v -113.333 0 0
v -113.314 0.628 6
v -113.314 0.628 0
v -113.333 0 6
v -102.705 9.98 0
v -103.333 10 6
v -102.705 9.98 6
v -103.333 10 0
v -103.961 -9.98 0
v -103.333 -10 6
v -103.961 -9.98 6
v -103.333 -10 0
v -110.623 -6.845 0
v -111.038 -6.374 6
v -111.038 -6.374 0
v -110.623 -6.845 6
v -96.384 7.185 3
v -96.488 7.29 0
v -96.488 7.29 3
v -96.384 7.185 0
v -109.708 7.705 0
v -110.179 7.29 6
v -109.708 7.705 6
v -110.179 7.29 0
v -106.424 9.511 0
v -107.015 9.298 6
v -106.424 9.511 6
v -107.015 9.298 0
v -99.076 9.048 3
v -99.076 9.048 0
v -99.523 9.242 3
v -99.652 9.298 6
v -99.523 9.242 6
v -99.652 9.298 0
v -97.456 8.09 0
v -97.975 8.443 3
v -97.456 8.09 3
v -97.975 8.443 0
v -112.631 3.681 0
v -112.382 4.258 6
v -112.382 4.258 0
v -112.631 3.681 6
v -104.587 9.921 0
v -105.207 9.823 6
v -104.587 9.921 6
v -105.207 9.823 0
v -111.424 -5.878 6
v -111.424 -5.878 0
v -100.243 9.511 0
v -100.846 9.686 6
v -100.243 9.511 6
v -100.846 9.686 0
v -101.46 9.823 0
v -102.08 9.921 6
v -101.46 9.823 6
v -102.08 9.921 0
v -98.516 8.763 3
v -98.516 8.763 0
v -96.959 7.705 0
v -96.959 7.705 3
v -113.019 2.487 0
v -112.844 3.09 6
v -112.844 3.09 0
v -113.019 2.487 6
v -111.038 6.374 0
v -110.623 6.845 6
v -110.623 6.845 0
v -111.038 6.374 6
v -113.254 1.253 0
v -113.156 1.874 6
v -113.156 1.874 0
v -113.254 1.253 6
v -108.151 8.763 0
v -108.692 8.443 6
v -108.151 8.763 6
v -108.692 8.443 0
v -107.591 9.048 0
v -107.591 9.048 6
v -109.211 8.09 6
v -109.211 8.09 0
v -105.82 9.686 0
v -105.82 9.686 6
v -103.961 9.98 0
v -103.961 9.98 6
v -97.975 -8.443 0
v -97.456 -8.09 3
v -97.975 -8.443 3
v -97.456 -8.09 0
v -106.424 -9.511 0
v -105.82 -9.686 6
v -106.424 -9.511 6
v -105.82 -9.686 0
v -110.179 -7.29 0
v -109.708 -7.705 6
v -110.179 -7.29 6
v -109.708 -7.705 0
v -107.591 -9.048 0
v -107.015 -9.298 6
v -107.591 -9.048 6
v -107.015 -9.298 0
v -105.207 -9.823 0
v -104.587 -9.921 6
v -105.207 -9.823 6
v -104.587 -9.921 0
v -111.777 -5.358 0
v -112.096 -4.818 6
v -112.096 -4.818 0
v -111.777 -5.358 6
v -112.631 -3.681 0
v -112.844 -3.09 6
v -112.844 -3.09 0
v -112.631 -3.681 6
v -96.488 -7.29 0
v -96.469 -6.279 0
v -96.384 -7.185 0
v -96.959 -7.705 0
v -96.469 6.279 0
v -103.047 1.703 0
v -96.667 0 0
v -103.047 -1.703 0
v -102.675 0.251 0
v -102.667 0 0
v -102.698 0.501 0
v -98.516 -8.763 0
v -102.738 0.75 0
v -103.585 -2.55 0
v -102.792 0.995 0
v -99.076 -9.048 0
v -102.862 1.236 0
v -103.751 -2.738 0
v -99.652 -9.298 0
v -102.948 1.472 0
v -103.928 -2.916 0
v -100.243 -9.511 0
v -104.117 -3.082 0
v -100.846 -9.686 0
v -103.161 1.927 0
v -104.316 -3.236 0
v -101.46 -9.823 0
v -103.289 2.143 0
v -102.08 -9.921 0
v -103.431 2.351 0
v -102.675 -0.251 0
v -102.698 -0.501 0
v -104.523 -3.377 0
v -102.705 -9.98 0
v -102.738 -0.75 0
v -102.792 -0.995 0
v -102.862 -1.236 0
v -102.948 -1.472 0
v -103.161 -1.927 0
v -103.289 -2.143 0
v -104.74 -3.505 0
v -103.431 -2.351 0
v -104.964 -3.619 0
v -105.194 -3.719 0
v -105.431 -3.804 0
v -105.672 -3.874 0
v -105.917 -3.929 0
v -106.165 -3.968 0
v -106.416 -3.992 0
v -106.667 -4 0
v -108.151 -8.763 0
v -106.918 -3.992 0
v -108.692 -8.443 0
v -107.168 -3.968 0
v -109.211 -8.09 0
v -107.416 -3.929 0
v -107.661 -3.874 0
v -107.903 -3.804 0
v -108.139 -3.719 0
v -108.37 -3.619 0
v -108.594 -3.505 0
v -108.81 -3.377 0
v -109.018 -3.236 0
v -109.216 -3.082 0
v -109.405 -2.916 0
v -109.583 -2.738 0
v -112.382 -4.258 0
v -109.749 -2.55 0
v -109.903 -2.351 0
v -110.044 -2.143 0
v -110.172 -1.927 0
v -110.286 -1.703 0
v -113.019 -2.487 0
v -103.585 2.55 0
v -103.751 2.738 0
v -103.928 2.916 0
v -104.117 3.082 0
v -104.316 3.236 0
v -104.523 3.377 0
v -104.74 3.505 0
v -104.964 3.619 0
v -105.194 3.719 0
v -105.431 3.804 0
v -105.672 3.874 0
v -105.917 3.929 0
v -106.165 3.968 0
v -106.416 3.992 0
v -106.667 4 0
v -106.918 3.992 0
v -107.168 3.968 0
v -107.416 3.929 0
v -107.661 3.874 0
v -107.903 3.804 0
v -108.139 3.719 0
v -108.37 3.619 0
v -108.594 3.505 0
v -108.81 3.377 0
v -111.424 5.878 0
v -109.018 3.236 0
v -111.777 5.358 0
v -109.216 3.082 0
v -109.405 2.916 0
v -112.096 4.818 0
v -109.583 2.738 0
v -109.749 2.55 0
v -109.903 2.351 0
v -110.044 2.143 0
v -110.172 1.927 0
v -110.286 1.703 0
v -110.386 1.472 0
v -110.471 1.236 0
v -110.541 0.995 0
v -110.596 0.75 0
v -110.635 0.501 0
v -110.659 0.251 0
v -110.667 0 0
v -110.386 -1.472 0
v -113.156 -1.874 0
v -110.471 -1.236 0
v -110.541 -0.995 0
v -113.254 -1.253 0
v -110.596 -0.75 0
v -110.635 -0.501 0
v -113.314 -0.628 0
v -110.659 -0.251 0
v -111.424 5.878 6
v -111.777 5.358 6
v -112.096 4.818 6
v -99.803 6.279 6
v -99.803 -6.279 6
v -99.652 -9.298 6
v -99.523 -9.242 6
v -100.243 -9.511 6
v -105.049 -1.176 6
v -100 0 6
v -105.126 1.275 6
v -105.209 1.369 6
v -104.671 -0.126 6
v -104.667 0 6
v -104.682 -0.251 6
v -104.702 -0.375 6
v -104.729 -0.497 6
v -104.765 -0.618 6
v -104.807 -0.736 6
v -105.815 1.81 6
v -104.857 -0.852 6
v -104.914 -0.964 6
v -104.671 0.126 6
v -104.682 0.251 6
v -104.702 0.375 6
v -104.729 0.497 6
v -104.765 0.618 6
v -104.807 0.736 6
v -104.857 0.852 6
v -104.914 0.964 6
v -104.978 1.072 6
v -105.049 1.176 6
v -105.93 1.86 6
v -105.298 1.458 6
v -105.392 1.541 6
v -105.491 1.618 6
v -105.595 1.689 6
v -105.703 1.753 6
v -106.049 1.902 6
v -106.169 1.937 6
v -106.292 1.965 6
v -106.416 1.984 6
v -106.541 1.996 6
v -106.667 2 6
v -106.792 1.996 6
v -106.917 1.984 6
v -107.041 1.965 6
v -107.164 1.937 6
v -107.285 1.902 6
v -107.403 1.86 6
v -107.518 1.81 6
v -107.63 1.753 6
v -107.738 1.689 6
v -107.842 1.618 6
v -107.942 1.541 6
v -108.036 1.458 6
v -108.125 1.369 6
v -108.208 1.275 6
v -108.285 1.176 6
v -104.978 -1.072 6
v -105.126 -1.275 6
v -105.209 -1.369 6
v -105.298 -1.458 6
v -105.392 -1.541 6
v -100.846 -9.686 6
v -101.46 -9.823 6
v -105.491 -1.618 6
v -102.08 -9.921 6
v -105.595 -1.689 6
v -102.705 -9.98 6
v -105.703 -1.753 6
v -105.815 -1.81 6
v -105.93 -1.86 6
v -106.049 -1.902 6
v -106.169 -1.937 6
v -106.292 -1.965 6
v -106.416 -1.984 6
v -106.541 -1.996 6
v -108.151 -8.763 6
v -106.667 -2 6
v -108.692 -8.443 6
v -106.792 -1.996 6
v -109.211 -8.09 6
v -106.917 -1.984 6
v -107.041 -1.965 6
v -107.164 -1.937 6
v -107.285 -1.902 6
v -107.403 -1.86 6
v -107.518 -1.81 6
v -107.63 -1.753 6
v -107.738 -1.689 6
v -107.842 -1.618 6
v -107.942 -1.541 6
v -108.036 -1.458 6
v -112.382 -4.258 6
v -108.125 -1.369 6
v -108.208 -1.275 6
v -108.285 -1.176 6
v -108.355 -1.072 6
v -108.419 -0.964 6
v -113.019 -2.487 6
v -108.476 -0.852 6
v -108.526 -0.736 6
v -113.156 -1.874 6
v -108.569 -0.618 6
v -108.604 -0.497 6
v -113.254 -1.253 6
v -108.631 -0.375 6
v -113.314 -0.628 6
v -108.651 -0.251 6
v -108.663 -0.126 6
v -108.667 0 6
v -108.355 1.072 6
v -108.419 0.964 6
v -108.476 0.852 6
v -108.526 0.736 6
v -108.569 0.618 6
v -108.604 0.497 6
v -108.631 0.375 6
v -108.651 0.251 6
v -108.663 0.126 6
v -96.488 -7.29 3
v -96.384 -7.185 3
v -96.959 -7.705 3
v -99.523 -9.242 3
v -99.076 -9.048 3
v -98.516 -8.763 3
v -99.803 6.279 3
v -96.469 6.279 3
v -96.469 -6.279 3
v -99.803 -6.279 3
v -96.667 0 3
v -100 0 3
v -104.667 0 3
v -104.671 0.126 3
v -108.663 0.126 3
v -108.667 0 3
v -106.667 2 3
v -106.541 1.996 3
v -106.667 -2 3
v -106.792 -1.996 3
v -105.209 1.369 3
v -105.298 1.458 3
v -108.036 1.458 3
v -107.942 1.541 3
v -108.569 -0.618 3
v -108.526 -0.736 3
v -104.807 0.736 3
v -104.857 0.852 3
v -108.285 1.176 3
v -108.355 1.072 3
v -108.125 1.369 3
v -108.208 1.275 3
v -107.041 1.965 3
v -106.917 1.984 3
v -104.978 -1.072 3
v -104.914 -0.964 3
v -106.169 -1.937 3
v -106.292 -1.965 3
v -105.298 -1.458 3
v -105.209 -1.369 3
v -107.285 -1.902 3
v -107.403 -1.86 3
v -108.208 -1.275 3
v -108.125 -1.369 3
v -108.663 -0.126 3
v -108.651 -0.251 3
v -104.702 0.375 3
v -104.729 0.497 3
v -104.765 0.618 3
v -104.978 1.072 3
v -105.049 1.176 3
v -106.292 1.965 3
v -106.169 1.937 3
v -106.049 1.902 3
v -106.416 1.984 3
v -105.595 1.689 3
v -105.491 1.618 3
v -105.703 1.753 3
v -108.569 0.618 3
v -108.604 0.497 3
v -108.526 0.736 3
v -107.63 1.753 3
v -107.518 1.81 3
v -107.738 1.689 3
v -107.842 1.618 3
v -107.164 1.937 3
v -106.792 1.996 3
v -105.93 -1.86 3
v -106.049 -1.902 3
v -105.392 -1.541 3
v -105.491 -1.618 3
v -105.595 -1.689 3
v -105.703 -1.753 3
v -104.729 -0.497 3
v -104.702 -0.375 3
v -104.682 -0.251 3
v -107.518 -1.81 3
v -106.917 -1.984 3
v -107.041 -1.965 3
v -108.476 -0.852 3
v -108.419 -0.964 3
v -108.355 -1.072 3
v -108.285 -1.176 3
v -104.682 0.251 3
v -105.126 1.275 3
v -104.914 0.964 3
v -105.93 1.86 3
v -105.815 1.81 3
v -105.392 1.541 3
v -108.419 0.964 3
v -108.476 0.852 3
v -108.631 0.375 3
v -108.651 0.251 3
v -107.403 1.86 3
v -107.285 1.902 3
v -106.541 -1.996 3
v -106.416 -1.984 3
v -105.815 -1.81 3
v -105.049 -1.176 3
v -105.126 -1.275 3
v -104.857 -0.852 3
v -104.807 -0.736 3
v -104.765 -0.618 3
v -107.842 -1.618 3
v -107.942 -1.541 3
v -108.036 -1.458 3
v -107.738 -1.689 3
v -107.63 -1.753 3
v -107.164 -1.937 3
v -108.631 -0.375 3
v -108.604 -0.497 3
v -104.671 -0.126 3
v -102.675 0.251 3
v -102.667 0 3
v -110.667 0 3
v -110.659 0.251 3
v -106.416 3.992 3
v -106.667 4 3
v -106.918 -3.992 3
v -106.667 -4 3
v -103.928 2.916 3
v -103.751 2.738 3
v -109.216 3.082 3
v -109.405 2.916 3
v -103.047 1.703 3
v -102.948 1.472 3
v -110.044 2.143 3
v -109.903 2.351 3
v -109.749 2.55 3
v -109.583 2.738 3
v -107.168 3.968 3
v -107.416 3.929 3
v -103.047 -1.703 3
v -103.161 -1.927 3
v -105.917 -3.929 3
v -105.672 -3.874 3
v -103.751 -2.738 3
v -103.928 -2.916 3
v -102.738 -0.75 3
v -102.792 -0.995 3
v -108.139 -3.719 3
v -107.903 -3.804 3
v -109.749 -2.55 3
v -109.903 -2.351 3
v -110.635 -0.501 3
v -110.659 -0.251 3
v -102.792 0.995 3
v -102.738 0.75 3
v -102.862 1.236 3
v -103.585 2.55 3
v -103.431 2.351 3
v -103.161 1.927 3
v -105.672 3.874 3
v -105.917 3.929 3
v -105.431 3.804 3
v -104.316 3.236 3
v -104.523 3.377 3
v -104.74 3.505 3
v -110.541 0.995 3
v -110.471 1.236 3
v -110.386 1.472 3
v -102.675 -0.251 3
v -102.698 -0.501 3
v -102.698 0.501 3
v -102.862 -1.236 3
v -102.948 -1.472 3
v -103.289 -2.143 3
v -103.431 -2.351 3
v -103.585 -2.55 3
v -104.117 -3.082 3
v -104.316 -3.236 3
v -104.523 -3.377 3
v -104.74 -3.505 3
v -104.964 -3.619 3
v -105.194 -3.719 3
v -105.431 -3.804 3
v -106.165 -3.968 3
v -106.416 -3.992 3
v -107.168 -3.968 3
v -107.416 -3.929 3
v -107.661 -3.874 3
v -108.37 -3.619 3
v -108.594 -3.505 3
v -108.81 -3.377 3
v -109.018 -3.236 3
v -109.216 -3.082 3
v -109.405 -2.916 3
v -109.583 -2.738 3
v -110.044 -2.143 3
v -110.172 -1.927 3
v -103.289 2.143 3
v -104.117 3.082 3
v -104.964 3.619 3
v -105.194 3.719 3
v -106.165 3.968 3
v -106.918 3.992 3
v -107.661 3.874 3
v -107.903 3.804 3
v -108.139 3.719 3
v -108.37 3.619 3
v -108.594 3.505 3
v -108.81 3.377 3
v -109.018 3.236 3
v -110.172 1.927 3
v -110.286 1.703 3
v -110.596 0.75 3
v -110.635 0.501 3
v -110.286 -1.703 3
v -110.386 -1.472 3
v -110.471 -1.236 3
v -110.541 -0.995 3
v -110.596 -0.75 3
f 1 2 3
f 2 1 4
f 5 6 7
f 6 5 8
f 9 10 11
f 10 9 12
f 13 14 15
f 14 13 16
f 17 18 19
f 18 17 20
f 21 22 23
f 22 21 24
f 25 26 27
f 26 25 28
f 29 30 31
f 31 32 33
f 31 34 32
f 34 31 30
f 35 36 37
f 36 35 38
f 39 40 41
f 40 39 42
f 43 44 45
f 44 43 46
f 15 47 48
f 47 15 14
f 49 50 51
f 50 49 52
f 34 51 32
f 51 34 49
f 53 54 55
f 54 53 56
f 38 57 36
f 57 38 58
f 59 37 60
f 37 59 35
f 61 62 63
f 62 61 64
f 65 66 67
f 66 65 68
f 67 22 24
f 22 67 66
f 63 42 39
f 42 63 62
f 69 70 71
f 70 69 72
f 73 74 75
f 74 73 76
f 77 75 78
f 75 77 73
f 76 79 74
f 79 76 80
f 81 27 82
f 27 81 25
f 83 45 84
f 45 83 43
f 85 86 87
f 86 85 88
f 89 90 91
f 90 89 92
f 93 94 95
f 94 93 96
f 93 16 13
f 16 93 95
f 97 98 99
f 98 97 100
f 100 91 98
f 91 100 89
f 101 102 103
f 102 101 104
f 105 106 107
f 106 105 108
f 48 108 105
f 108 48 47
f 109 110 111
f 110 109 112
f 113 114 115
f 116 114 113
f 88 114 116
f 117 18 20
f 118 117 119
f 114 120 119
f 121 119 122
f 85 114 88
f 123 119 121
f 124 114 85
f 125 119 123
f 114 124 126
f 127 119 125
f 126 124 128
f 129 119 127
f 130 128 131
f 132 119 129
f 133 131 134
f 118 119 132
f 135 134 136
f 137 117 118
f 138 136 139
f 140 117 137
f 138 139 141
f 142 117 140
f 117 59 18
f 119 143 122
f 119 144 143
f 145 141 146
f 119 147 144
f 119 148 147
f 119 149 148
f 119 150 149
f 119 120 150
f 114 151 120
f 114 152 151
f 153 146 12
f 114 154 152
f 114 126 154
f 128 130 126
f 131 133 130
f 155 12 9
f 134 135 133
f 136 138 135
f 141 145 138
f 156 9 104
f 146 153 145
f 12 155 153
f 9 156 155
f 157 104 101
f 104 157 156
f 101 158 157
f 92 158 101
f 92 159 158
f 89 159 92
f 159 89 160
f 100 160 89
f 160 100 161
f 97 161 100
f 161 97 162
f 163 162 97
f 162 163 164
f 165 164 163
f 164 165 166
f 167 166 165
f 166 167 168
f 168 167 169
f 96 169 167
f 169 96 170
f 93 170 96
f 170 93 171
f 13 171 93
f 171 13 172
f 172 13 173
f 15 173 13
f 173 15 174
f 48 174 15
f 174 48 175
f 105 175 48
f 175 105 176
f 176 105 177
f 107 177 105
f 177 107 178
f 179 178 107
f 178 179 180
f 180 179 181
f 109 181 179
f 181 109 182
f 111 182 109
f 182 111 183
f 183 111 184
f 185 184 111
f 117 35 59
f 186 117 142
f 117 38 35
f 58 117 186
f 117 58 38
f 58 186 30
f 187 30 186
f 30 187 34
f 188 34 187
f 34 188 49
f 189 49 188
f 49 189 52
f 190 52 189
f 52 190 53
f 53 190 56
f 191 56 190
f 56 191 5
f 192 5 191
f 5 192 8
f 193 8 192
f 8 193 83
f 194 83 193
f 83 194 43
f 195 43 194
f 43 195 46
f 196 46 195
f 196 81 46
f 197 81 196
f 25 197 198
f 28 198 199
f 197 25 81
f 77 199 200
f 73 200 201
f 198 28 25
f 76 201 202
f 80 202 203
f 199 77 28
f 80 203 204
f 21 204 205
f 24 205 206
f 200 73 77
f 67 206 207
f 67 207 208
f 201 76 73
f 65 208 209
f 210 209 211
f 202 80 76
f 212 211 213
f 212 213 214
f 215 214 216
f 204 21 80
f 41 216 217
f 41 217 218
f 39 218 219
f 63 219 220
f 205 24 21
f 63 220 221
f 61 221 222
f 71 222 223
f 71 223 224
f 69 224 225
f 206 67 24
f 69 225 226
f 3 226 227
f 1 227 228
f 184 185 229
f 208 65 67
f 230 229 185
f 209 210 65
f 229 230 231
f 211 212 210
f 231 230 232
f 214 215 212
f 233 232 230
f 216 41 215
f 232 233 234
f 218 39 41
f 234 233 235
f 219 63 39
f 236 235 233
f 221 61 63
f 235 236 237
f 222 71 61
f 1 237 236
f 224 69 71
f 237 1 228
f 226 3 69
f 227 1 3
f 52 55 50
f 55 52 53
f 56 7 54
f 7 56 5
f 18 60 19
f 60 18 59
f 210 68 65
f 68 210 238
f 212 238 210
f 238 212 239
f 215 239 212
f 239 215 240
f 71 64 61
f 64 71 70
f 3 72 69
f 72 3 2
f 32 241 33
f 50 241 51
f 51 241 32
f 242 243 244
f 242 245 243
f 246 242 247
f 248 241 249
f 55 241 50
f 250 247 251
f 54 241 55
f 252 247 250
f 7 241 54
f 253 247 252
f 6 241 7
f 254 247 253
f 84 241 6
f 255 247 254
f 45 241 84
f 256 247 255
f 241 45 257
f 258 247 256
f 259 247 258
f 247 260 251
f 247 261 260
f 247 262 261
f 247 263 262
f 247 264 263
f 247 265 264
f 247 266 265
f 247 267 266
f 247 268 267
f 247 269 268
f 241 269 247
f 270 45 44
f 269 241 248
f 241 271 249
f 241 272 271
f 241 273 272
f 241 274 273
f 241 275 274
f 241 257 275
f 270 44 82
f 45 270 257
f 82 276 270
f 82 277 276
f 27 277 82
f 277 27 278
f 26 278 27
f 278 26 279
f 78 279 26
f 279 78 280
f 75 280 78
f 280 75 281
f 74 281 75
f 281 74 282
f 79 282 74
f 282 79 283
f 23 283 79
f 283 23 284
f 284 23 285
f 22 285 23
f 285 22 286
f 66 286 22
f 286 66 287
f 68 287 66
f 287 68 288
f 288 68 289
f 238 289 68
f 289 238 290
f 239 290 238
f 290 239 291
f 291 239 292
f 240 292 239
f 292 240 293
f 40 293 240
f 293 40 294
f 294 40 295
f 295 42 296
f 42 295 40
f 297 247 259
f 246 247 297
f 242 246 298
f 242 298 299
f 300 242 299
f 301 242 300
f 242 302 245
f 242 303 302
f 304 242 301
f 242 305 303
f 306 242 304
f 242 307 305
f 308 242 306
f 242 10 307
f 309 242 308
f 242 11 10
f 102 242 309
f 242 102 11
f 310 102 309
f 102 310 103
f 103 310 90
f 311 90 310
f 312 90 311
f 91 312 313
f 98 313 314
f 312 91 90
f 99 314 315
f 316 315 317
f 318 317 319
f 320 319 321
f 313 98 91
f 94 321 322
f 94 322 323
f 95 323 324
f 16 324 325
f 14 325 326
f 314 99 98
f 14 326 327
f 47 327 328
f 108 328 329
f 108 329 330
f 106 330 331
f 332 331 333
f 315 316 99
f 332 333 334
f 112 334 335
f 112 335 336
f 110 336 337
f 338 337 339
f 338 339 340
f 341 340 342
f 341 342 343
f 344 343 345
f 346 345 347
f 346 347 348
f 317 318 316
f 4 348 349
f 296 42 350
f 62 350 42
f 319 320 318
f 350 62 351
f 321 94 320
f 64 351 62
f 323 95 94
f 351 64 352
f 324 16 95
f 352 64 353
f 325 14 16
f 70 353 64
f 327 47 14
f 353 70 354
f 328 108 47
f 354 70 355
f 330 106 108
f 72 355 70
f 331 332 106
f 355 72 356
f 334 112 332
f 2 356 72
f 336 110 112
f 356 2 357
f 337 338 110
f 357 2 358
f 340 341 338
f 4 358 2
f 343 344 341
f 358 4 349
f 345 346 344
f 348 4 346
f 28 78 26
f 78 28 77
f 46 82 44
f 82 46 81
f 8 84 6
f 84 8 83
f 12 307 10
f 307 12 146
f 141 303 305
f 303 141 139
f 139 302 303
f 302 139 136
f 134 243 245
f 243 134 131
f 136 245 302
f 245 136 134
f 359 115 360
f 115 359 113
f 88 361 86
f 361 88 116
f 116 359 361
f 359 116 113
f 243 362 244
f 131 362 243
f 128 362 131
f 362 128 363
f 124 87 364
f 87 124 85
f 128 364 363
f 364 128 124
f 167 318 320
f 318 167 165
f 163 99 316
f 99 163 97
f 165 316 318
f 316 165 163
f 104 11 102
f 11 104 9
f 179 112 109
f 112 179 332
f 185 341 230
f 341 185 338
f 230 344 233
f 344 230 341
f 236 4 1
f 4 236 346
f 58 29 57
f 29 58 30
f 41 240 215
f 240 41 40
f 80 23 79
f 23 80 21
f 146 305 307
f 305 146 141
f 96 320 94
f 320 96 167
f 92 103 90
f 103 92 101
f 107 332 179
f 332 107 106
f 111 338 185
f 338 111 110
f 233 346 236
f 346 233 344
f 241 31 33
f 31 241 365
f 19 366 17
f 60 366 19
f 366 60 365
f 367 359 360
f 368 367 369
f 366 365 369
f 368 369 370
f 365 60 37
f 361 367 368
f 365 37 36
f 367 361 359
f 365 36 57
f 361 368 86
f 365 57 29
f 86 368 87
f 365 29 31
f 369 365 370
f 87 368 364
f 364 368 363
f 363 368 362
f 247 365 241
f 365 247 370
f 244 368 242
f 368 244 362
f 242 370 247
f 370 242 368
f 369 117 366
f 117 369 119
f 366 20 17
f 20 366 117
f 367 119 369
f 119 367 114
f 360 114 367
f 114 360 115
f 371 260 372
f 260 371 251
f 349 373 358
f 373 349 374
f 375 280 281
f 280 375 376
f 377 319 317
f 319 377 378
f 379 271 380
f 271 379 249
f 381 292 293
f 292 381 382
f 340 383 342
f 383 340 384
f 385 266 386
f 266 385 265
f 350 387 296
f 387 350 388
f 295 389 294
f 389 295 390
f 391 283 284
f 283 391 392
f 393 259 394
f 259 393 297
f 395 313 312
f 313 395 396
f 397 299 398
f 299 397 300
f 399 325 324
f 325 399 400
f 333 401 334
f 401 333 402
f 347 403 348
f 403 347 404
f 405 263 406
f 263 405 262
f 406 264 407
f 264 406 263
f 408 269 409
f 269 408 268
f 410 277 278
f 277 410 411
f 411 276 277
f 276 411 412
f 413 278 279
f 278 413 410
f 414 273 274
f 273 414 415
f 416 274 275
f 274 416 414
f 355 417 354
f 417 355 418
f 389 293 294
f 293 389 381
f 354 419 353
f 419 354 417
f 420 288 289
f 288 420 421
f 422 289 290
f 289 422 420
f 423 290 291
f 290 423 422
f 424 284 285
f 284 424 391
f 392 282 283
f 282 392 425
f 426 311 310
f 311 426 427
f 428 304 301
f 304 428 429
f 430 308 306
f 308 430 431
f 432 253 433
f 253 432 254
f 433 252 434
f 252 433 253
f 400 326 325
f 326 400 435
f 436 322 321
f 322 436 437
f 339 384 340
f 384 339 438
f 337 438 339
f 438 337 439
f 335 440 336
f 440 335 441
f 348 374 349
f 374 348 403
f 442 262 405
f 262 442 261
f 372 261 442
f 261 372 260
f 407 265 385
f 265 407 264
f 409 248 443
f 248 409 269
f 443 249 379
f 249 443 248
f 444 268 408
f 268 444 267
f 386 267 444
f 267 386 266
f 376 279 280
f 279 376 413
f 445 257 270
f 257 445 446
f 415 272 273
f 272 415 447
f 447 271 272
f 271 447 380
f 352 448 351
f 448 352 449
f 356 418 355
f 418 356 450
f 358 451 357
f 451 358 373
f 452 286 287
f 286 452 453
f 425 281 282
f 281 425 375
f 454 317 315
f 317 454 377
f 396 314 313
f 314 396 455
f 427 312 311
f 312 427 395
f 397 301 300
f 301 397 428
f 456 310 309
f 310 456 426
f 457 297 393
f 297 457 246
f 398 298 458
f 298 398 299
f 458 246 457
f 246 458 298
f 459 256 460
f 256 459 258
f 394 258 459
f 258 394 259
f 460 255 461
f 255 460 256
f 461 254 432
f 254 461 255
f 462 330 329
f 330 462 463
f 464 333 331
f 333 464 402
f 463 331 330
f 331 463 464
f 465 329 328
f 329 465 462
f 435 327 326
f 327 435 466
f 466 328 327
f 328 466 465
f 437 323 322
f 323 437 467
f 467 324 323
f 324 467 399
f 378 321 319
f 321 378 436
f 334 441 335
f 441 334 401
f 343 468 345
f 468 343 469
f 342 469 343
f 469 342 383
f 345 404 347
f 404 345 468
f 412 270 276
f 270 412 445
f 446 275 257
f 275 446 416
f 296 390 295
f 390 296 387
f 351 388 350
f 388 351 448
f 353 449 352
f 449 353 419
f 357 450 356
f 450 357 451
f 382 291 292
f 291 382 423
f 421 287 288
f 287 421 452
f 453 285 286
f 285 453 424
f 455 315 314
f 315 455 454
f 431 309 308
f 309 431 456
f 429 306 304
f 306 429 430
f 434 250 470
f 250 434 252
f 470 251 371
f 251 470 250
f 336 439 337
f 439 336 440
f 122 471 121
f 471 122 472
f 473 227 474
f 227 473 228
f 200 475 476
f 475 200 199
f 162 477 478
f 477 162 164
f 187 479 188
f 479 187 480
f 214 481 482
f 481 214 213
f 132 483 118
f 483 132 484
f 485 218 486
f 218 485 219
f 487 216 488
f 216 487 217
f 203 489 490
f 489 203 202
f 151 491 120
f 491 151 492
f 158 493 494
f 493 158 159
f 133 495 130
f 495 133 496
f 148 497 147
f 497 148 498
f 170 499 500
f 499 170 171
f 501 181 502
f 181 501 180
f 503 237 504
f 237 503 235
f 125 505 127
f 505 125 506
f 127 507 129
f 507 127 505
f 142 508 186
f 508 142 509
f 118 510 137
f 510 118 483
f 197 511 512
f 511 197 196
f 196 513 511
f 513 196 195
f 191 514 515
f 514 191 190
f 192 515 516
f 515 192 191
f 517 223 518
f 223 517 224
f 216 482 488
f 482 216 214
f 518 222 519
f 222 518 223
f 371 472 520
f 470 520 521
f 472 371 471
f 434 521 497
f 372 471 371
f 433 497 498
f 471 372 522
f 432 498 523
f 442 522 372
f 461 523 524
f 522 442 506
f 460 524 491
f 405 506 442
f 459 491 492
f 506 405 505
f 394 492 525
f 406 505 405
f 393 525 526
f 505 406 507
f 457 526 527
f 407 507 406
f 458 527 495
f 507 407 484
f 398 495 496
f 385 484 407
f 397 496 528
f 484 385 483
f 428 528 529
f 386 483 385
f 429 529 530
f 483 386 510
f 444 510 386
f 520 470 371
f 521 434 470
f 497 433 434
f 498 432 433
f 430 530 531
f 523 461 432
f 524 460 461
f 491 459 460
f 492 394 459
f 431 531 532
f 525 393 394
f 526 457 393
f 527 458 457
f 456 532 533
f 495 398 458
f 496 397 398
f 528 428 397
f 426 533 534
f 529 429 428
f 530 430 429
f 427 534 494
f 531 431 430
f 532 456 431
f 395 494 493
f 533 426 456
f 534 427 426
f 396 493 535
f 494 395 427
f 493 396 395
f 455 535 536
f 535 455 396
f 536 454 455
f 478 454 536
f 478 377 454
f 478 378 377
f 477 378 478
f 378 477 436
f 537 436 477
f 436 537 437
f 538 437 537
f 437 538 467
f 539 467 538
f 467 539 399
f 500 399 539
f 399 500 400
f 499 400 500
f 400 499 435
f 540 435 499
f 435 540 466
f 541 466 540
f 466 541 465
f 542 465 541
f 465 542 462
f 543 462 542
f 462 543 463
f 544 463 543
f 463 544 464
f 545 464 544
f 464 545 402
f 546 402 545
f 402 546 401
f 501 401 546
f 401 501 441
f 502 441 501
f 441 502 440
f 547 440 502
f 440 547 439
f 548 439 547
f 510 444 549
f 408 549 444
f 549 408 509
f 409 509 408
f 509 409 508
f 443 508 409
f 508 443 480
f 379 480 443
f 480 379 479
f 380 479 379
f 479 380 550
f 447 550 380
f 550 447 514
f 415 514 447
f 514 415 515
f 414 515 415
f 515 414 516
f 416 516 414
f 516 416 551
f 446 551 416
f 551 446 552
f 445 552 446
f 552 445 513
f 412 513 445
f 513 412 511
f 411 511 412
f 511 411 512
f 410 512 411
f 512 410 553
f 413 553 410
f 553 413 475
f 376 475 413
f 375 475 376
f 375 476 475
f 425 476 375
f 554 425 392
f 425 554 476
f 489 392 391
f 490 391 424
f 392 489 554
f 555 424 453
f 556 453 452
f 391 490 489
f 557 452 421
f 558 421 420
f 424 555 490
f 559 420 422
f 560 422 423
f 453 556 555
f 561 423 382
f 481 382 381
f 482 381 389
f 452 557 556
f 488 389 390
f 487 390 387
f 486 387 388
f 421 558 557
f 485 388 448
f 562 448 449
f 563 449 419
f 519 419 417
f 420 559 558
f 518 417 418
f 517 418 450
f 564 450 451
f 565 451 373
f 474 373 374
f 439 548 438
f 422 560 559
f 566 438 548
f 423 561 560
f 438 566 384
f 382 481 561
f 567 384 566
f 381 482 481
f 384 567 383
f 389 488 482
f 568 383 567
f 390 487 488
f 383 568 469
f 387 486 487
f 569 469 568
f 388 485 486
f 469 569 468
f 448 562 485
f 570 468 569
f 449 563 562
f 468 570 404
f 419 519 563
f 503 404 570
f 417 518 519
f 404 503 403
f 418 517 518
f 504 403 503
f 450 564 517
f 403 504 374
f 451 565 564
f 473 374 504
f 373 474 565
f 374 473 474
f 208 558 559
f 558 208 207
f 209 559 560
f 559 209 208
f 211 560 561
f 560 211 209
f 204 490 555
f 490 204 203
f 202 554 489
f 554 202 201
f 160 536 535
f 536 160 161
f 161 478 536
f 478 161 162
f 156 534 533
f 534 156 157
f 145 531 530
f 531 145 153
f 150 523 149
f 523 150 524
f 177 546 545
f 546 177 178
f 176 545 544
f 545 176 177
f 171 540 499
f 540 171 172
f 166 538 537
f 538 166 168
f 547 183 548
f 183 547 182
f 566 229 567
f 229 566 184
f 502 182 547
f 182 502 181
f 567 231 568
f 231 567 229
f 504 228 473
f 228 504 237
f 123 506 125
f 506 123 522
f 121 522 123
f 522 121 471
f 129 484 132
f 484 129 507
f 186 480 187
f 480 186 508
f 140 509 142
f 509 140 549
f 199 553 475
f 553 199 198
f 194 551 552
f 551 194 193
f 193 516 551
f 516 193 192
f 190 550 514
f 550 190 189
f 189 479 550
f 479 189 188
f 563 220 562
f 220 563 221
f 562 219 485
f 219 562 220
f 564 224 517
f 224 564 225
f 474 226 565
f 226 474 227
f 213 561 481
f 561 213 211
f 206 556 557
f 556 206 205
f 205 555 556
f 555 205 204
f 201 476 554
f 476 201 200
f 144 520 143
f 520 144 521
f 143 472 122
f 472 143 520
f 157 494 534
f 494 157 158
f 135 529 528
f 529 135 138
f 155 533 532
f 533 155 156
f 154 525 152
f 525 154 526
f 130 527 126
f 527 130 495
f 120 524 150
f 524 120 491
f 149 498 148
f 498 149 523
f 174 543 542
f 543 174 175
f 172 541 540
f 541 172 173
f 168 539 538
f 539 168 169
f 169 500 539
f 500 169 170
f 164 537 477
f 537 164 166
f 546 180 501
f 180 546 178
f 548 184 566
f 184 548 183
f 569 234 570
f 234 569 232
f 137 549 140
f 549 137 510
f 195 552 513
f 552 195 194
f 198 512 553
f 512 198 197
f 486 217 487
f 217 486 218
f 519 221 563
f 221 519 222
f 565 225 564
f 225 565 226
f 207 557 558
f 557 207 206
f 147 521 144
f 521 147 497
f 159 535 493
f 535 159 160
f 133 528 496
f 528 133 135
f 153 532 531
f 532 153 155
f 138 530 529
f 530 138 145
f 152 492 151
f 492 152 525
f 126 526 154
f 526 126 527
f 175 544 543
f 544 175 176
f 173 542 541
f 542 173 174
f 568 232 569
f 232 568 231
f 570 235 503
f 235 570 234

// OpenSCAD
/* [Support] */
diam_ext_support=20; // [10:1:30]
epaisseur_sur_vitre=3; // [0:0.1:10]
encoche_percent=0.5; // [0.3:0.1:0.7]
epaisseur_sous_vitre=0; // [0:0.1:10]

/* [Screw] */
vis_diam=4; // [2:0.1:5]
vis_tete_diam=8; // [4:0.1:10]

/* [Glass] */
vitre_diam=200; // [150:1:250]
vitre_haut=3; // [2:0.1:5]

/* [Hidden] */
artefact=0.05;

module support_vitre() {
    position_encoche=diam_ext_support/6;
    difference() {
        union(){
        cylinder(h=epaisseur_sur_vitre+vitre_haut+epaisseur_sous_vitre,d=diam_ext_support,$fn=100); //Piece brute
        translate([0,0,epaisseur_sur_vitre+vitre_haut])
            cylinder(h=epaisseur_sous_vitre,d=diam_ext_support,$fn=100); //Piece dessous
        }
        translate([vitre_diam/2+position_encoche,0,epaisseur_sur_vitre])
            cylinder(h=vitre_haut+artefact,d=vitre_diam,$fn=100); //Trou Vitre

        translate([vitre_diam/2+position_encoche/encoche_percent,0,-artefact])
            cylinder(h=vitre_haut+epaisseur_sur_vitre+2*artefact,d=vitre_diam,$fn=100); //Encoche dessus vitre

        translate([-position_encoche,0,-artefact])
            cylinder(h=epaisseur_sur_vitre+vitre_haut+epaisseur_sous_vitre+2*artefact,d=vis_diam,$fn=100); //Trou vis
        
        translate([-position_encoche,0,-artefact])
            cylinder(h=epaisseur_sur_vitre+artefact,d=vis_tete_diam,$fn=100); //Trou tete vis
        }
}

module glass() {
    translate([0,0,-artefact])
        cylinder(h=vitre_haut+artefact,d=vitre_diam,$fn=100); //Vitre
}

%translate([0,0,10]) rotate([90,0,0]) text("Down view");
%color("LightCyan") translate([0,0,epaisseur_sur_vitre-artefact]) glass();
rotate([0,0,0]) translate([-vitre_diam/2-diam_ext_support/6,0,0]) support_vitre();
%color("gold") rotate([0,0,120]) translate([-vitre_diam/2-diam_ext_support/6,0,0]) support_vitre();
%color("gold") rotate([0,0,240]) translate([-vitre_diam/2-diam_ext_support/6,0,0]) support_vitre();
%translate([0,0,-10]) rotate([-90,0,0]) text("Top view");
